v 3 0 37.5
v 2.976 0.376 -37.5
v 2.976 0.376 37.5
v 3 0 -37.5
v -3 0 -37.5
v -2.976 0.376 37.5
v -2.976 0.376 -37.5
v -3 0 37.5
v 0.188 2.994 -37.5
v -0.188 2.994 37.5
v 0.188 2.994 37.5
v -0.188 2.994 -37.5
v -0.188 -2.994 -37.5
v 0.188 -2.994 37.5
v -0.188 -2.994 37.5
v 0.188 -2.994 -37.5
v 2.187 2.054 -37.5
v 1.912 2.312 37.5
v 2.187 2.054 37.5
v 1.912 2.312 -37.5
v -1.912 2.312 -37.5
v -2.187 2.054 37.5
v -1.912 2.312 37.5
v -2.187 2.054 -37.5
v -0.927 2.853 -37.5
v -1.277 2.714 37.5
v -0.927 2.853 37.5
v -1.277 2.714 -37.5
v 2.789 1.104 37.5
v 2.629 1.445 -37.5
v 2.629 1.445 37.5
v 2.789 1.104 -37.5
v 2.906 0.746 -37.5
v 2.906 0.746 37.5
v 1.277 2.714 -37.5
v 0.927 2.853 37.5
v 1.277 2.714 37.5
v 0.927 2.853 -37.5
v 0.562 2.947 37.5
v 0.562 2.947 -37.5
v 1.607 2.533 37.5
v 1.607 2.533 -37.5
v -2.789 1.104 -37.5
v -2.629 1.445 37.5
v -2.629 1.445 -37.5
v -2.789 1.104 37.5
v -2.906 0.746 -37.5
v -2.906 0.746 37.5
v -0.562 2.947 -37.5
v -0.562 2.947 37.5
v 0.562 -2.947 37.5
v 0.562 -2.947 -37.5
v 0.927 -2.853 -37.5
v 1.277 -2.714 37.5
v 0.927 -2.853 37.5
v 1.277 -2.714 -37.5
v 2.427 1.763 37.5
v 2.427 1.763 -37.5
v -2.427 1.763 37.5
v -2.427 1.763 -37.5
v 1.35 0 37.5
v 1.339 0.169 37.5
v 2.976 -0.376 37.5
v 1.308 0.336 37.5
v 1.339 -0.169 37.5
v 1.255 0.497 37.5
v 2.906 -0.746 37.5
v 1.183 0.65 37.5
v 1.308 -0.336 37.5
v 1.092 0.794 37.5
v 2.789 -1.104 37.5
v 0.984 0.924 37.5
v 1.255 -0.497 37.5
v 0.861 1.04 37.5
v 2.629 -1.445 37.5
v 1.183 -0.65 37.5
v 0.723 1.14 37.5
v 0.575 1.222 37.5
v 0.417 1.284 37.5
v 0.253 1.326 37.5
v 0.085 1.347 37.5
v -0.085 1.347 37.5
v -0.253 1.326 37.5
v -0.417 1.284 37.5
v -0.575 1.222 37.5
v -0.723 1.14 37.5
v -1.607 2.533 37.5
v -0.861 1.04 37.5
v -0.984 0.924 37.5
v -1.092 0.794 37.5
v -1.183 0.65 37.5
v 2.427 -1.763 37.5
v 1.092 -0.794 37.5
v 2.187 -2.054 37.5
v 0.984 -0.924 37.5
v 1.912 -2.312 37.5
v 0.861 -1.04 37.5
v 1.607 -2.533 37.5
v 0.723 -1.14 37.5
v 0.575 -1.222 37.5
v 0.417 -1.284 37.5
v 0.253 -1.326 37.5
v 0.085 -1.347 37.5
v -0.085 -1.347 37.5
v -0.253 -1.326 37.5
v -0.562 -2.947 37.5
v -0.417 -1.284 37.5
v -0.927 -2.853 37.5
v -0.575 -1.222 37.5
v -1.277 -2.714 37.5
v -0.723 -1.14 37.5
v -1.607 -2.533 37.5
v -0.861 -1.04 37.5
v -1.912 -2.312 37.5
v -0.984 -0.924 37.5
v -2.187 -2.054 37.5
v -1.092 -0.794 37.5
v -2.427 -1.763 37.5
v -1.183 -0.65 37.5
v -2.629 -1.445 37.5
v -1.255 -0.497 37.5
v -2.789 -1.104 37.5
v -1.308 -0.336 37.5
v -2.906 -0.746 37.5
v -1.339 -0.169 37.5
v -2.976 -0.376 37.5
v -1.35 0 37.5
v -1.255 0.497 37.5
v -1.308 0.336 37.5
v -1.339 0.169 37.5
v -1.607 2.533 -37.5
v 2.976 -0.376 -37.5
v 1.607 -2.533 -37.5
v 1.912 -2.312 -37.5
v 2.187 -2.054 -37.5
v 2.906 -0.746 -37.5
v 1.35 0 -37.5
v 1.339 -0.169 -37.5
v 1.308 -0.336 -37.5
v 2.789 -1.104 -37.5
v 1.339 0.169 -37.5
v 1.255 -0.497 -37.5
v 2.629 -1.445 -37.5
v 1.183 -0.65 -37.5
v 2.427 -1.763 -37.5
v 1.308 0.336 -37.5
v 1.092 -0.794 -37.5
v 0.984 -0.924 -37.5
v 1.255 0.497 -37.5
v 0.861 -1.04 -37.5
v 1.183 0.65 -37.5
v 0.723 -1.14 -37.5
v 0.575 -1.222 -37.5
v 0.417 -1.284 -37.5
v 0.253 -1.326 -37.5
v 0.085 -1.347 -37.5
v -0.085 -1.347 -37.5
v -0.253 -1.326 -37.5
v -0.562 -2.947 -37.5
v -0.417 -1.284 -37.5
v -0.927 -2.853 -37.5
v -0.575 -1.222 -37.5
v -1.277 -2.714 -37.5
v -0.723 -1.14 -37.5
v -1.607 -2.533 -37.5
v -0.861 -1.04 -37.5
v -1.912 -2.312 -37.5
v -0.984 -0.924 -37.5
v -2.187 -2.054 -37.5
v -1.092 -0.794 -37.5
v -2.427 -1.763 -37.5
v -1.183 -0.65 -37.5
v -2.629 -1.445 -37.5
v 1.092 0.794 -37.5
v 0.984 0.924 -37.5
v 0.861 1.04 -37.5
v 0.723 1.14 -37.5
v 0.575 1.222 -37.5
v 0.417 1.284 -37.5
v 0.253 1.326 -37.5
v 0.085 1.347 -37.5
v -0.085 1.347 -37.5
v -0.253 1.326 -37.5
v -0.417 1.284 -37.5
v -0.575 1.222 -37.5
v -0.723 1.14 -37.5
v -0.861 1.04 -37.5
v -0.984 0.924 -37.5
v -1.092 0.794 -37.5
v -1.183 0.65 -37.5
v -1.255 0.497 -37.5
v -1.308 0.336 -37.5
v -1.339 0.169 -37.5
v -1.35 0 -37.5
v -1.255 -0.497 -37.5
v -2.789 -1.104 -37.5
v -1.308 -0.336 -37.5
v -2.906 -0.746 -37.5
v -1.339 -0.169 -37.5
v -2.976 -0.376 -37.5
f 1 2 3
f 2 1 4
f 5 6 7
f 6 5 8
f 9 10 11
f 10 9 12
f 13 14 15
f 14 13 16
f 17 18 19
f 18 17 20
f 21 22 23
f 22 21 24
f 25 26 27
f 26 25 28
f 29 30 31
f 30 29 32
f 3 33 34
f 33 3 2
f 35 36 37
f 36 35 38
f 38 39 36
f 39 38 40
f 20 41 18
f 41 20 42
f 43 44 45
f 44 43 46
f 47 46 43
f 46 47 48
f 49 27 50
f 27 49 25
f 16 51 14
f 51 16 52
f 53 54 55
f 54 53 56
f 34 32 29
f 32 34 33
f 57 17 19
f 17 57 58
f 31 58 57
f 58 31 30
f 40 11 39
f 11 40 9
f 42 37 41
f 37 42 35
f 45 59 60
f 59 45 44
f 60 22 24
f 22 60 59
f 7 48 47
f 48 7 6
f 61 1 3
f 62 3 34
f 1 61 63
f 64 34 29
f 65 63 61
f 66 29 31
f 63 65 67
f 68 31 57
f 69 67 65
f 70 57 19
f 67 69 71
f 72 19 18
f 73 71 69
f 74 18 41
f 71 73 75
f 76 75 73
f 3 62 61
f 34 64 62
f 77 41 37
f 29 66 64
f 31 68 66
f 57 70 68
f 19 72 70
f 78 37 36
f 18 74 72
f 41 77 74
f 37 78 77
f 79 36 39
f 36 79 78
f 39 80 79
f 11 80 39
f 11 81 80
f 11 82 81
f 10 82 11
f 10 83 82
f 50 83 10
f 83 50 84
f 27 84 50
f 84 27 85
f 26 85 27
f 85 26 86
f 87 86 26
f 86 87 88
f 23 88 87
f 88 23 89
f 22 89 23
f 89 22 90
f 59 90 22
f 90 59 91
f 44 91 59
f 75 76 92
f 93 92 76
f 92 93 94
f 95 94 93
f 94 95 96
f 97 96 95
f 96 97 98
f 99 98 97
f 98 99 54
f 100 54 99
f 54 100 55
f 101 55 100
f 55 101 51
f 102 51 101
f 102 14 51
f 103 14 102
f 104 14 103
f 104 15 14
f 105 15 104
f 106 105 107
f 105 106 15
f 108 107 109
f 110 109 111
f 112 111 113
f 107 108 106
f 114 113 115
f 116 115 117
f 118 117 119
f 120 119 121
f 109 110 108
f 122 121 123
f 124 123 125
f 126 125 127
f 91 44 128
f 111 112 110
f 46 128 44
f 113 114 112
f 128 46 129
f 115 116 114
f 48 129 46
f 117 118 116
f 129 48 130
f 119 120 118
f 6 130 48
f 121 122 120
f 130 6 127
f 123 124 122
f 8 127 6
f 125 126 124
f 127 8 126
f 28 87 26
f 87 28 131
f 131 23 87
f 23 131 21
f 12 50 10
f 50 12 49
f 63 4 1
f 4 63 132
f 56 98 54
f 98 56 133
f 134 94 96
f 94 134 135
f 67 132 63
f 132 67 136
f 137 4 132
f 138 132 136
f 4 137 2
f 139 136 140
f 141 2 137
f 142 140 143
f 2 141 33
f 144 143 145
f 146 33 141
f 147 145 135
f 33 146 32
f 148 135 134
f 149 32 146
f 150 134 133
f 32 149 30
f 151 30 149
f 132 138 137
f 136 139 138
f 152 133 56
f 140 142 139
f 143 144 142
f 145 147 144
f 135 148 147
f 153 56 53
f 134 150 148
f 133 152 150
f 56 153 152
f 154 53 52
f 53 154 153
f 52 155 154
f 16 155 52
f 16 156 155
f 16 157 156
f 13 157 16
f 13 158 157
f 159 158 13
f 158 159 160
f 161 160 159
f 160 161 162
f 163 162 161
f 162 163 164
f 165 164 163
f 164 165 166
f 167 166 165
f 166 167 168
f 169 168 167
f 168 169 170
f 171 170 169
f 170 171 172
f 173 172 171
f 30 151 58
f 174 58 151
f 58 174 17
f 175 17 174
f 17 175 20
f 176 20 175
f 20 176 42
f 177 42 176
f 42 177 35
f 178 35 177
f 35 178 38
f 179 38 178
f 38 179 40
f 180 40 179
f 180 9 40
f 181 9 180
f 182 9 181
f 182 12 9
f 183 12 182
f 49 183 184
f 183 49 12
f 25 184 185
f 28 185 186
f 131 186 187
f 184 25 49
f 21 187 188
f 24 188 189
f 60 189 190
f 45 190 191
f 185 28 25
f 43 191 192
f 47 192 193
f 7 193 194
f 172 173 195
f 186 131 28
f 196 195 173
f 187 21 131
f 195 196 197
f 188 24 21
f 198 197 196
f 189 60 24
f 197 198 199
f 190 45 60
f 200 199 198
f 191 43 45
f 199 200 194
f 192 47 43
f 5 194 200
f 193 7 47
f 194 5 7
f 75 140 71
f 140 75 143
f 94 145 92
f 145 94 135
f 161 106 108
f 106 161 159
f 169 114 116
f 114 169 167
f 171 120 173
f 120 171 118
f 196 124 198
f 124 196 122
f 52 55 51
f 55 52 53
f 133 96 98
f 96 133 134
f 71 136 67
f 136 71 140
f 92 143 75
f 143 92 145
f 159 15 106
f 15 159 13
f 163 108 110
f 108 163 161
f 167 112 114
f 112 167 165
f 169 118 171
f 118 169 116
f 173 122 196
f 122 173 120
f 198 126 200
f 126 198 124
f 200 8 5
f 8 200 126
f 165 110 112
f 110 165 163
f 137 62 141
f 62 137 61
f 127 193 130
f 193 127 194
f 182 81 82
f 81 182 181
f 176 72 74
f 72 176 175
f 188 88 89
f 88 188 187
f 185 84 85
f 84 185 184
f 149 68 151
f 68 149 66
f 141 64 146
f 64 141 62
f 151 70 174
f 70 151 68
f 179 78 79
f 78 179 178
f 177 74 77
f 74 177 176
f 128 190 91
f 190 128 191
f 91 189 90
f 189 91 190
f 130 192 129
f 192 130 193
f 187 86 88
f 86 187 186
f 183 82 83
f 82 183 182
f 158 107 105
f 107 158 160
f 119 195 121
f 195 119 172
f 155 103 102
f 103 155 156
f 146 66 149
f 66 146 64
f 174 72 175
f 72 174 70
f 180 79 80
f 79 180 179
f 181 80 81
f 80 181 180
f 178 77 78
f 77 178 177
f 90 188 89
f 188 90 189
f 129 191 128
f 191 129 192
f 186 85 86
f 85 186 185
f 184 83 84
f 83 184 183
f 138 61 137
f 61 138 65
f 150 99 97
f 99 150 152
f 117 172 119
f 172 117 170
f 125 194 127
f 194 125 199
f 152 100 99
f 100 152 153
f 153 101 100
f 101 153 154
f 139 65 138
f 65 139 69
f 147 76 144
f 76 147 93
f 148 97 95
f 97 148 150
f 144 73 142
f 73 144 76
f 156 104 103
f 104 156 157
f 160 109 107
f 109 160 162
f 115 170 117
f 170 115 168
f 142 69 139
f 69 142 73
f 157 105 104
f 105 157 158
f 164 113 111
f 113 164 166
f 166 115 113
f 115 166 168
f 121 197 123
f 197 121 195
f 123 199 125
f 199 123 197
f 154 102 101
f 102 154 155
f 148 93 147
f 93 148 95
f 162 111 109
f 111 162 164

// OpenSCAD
$fn = 50;


difference() {
	union() {
		translate(v = [0, 0, -37.5000000000]) {
			cylinder(h = 75, r = 3.0000000000);
		}
	}
	union() {
		translate(v = [0, 0, -100.0000000000]) {
			cylinder(h = 200, r = 1.3500000000);
		}
	}
}
